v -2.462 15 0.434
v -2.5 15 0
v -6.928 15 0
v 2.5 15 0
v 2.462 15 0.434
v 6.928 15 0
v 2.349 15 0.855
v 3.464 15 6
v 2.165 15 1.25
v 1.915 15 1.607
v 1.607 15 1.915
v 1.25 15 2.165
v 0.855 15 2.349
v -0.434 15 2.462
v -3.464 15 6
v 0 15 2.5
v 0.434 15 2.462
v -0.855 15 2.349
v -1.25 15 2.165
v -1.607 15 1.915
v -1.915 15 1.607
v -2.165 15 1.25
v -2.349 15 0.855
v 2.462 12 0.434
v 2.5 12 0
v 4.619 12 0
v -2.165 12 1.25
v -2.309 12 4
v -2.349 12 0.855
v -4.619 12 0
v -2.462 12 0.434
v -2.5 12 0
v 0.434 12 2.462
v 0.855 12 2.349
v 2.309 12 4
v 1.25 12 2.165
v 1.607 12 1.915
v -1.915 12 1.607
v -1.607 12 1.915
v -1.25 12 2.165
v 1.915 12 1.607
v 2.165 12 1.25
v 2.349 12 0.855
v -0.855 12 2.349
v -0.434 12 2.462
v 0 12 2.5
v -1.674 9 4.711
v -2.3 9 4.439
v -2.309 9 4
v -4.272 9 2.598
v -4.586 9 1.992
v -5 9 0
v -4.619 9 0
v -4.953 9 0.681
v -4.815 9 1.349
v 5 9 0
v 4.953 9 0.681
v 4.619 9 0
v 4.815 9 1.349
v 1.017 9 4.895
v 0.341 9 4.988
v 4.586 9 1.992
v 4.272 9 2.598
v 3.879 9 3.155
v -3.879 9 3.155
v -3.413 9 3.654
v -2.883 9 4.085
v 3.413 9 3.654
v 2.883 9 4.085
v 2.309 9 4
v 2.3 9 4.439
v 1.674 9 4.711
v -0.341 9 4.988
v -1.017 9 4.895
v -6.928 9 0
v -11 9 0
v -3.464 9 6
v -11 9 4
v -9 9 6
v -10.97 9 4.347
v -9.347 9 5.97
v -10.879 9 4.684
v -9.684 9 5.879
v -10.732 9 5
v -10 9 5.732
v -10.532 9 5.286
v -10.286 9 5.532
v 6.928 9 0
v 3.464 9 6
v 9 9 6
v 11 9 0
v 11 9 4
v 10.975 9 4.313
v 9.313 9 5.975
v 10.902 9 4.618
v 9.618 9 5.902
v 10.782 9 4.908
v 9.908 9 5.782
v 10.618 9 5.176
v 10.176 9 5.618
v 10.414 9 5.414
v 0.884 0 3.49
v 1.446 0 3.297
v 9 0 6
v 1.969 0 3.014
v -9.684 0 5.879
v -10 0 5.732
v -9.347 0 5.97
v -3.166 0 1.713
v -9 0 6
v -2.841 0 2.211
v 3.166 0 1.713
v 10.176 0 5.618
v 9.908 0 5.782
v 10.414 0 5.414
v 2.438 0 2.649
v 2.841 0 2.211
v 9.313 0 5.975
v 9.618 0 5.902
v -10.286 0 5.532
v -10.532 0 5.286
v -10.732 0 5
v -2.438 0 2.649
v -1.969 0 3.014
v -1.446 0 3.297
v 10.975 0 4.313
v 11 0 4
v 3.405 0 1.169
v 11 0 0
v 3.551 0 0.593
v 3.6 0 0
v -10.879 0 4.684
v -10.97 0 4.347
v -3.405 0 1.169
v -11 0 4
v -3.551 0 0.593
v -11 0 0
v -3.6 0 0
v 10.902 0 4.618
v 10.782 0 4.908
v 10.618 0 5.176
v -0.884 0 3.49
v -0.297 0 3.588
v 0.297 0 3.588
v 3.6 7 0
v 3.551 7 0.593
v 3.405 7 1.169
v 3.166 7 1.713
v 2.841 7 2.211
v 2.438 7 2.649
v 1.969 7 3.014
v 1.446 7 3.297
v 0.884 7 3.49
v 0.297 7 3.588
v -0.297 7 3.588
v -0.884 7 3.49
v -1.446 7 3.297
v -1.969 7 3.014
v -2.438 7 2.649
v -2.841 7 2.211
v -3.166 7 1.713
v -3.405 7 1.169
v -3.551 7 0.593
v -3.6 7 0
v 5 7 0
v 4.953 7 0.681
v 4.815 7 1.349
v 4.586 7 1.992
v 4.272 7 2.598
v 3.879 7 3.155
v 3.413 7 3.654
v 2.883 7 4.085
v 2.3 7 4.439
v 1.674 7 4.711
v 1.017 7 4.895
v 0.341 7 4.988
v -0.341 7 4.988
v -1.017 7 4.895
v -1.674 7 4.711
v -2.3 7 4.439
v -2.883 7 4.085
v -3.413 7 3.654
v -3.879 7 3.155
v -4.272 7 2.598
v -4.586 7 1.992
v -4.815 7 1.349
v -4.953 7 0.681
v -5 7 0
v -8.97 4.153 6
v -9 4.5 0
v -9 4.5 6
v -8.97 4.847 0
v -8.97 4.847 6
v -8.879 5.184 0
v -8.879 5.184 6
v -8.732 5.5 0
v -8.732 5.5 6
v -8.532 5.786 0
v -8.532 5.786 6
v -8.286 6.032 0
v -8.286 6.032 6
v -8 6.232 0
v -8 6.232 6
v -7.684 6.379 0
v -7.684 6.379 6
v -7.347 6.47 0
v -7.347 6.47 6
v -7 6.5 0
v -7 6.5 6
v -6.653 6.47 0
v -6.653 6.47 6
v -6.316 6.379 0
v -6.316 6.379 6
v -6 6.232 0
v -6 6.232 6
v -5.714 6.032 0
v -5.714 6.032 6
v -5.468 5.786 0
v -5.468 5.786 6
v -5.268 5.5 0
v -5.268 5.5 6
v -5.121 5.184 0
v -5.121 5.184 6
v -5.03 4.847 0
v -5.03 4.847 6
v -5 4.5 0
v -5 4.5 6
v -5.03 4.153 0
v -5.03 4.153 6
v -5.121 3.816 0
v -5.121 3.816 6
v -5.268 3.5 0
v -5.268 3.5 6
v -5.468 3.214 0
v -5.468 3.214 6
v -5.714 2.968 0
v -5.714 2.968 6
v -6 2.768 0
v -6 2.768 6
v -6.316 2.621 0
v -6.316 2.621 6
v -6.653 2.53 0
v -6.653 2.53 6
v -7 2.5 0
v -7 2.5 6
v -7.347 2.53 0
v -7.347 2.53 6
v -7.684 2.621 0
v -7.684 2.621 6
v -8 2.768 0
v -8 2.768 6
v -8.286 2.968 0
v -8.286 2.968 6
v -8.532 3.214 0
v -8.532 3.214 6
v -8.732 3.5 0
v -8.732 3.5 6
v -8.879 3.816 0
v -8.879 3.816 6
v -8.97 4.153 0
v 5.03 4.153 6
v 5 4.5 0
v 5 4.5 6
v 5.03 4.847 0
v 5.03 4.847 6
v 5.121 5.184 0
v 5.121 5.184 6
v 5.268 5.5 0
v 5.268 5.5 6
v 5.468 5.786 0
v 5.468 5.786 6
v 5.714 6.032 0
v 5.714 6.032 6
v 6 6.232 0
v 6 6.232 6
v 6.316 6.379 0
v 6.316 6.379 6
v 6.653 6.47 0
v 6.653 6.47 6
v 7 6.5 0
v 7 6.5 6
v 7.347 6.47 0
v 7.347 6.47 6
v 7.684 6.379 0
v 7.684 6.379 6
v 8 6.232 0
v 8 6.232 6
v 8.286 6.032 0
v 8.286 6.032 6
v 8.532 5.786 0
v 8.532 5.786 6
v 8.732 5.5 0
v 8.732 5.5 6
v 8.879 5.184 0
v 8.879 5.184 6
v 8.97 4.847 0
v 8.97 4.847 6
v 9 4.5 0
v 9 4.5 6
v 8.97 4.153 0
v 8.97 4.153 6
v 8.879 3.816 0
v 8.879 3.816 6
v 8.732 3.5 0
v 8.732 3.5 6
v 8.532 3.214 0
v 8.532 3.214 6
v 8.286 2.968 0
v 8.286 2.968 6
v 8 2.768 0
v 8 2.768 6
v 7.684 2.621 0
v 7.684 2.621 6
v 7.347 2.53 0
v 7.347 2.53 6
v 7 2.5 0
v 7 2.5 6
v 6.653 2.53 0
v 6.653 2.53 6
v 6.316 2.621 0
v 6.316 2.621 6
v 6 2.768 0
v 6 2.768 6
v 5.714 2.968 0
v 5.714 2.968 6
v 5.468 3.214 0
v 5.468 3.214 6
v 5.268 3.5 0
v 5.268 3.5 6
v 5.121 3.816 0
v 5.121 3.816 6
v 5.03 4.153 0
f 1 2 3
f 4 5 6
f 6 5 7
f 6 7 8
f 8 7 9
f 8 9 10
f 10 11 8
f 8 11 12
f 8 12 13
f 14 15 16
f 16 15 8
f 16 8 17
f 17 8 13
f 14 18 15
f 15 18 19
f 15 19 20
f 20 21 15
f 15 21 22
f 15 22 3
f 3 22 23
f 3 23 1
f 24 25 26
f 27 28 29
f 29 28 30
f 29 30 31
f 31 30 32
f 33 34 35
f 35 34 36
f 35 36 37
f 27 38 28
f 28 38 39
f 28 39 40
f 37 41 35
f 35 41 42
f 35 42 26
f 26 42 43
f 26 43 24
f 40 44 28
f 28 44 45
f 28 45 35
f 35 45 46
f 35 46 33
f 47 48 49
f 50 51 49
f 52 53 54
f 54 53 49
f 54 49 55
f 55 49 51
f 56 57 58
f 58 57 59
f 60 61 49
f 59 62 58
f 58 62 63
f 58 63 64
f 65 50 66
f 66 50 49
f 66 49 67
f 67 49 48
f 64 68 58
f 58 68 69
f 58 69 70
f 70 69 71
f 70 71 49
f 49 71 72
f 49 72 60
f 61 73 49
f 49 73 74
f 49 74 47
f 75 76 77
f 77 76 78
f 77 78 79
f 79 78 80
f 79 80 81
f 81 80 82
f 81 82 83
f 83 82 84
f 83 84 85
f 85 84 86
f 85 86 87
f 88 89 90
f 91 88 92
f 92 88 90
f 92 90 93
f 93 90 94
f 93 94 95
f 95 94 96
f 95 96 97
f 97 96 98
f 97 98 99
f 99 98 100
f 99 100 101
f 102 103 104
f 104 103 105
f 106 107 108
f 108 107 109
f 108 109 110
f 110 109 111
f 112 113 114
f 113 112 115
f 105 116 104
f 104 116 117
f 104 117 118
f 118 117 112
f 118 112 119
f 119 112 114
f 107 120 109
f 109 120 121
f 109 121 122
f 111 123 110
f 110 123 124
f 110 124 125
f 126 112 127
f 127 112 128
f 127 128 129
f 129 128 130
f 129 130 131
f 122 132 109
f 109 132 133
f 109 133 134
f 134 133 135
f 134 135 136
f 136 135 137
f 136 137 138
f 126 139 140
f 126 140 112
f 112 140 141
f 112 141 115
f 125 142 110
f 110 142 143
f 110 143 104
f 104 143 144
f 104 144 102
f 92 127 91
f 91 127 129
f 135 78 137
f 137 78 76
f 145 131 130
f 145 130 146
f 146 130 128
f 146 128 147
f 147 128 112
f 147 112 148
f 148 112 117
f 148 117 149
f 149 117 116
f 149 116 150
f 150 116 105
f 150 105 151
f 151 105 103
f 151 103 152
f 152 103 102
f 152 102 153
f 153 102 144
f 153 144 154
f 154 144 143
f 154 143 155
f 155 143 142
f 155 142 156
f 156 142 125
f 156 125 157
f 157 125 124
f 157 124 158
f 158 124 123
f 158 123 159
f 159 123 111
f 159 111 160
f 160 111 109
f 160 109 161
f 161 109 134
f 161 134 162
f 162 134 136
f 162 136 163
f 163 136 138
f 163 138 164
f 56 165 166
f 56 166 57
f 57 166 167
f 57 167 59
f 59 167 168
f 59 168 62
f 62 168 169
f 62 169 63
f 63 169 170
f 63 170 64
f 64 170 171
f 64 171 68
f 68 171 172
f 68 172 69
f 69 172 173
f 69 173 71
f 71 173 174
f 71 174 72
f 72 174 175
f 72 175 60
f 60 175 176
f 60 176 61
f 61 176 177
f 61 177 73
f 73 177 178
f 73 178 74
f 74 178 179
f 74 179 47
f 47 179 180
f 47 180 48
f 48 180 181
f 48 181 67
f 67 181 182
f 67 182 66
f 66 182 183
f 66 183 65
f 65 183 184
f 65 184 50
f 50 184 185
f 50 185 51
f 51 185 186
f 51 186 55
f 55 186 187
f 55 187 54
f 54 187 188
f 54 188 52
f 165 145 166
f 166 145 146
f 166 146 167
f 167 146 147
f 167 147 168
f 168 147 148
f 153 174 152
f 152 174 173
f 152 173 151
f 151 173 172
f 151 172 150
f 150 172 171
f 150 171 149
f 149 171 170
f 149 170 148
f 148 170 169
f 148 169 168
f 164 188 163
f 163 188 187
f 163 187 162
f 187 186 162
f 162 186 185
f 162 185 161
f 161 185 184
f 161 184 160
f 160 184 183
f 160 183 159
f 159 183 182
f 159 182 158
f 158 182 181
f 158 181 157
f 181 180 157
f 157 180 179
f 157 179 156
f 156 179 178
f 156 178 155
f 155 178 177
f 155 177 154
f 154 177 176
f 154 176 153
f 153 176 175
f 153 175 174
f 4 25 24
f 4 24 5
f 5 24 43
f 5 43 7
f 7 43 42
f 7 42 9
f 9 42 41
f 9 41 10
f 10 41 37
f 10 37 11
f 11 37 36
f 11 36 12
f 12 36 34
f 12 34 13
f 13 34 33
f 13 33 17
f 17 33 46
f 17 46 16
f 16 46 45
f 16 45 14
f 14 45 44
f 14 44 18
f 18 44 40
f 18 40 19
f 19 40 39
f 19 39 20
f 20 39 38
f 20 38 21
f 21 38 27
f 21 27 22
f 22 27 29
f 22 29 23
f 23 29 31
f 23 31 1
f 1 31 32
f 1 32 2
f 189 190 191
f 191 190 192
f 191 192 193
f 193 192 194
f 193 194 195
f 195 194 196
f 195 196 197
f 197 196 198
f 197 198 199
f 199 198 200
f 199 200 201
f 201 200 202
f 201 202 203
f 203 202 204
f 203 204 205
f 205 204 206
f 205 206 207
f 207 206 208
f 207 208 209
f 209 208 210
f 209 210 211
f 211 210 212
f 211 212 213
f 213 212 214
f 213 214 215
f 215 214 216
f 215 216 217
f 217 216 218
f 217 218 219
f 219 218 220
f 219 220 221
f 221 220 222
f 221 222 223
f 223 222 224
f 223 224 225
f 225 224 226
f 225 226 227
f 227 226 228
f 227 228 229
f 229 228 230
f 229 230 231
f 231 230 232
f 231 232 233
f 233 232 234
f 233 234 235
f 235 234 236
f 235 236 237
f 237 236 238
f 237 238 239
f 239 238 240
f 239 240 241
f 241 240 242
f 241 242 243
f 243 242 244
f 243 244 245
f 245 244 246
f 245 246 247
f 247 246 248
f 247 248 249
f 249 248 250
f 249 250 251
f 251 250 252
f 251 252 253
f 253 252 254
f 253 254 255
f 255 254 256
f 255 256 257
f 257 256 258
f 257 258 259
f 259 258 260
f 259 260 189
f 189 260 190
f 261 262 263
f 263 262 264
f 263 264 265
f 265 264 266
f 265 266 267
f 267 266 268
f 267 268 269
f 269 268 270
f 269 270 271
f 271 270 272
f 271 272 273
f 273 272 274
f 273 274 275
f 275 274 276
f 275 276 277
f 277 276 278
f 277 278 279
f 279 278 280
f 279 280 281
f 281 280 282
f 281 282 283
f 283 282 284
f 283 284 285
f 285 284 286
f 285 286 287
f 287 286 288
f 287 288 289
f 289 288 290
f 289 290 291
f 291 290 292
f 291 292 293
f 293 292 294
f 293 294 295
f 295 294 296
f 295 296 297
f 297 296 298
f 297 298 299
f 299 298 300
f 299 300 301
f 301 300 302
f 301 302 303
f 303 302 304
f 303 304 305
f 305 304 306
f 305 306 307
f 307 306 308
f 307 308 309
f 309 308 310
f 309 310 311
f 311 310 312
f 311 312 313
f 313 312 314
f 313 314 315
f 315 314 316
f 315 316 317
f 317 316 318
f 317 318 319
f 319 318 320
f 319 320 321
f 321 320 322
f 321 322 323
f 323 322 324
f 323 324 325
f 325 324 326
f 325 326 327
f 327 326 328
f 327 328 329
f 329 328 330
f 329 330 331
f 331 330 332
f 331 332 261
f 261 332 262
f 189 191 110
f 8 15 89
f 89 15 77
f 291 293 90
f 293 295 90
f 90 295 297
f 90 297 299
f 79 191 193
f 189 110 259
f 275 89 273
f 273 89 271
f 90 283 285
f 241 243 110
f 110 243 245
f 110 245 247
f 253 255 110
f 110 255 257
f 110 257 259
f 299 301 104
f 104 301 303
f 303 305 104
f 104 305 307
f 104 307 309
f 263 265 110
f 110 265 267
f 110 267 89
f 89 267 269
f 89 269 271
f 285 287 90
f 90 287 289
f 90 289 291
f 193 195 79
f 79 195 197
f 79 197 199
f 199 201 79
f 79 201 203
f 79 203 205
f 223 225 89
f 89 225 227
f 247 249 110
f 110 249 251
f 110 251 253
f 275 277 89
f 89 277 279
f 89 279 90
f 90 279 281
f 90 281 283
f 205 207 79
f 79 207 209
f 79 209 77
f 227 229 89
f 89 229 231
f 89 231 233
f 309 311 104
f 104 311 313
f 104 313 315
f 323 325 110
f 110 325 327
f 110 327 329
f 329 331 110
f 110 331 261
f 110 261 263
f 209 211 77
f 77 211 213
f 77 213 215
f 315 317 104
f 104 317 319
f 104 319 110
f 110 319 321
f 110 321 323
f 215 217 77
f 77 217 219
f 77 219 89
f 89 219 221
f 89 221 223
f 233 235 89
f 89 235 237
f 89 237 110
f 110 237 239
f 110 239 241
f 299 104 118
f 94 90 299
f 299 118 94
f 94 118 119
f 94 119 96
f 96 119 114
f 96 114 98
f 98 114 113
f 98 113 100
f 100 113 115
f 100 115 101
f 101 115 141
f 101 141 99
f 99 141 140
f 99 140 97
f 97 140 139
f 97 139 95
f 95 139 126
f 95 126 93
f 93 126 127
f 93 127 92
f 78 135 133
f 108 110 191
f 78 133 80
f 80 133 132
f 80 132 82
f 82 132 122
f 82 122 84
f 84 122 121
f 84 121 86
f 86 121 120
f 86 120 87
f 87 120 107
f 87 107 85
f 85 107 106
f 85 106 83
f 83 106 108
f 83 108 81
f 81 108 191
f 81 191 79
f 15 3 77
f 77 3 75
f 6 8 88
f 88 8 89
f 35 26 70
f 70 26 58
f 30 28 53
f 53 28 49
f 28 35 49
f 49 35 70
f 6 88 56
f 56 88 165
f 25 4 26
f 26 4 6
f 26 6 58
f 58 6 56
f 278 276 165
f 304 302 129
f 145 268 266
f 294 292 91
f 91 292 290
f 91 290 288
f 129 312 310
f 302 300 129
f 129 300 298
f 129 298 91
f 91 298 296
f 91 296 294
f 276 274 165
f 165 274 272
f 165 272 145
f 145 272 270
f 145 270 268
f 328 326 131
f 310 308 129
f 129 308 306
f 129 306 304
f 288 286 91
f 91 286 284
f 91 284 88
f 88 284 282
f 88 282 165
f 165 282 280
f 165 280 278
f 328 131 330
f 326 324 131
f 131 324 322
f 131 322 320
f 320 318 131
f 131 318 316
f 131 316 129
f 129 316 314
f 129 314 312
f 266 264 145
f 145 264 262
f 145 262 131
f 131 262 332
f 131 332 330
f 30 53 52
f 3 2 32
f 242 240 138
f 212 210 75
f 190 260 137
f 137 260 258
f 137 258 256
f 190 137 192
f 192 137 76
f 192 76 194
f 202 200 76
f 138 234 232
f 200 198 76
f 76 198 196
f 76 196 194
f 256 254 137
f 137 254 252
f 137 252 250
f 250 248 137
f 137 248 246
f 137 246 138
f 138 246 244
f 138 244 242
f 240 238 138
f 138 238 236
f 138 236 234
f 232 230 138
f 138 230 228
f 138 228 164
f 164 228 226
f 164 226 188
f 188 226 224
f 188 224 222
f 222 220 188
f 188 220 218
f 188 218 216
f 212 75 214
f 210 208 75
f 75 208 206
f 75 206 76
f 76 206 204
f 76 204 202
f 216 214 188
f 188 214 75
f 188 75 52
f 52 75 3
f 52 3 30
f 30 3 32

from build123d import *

# Parameters (mm, degrees)
SKETCH_1_W           = 22
SKETCH_1_H           = 12
EXTRUDE_1_DEPTH      = 9
FILLET_1_R           = 2
SKETCH_2_R           = 3.6
CUT_EXTRUDE_1_DEPTH  = 8
SKETCH_3_R           = 5
CUT_EXTRUDE_2_DEPTH  = 1
EXTRUDE_2_DEPTH      = 6
CUT_EXTRUDE_5_DEPTH  = 3
SKETCH_8_R           = 2.5
CUT_EXTRUDE_6_DEPTH  = 6
SKETCH_11_R          = 2
CUT_EXTRUDE_9_DEPTH  = 13
SKETCH_12_W          = 27.17111841
SKETCH_12_H          = 33.234136994
CUT_EXTRUDE_10_DEPTH = 10


with BuildPart() as part:
    # Эскиз1 → Бобышка-Вытянуть1 (new body)
    with BuildSketch(Plane(origin=(0, 0, 0), x_dir=(1, 0, 0), z_dir=(0, 1, 0))):
        Rectangle(SKETCH_1_W, SKETCH_1_H)
    extrude(amount=EXTRUDE_1_DEPTH)

    # Скругление1
    fillet_1_edges = [part.edges().sort_by_distance(p)[0] for p in [
        (11, 4.5, 6),
        (-11, 4.5, 6),
        (-11, 4.5, -6),
        (11, 4.5, -6),
    ]]
    fillet(fillet_1_edges, radius=FILLET_1_R)

    # Эскиз2 → Вырез-Вытянуть1 (cut)
    with BuildSketch(Plane(origin=(0, 0, 0), x_dir=(1, 0, 0), z_dir=(0, 1, 0))):
        Circle(SKETCH_2_R)
    extrude(amount=CUT_EXTRUDE_1_DEPTH, mode=Mode.SUBTRACT)

    # Эскиз3 → Вырез-Вытянуть2 (cut, symmetric)
    with BuildSketch(Plane.XZ.offset(-8)):
        Circle(SKETCH_3_R)
    extrude(amount=CUT_EXTRUDE_2_DEPTH, both=True, mode=Mode.SUBTRACT)

    # Эскиз6 → Бобышка-Вытянуть2 (add)
    with BuildSketch(Plane(origin=(0, 9, 0), x_dir=(1, 0, 0), z_dir=(0, 1, 0))):
        Polygon((6.92820323, 0), (3.464101615, 6), (-3.464101615, 6), (-6.92820323, 0), (-3.464101615, -6), (3.464101615, -6), align=None)
    extrude(amount=EXTRUDE_2_DEPTH)

    # Эскиз7 → Вырез-Вытянуть5 (cut)
    with BuildSketch(Plane(origin=(0, 9, 0), x_dir=(1, 0, 0), z_dir=(0, 1, 0))):
        Polygon((4.618802154, 0), (2.309401077, 4), (-2.309401077, 4), (-4.618802154, 0), (-2.309401077, -4), (2.309401077, -4), align=None)
    extrude(amount=CUT_EXTRUDE_5_DEPTH, mode=Mode.SUBTRACT)

    # Эскиз8 → Вырез-Вытянуть6 (cut)
    with BuildSketch(Plane(origin=(0, 9, 0), x_dir=(1, 0, 0), z_dir=(0, 1, 0))):
        Circle(SKETCH_8_R)
    extrude(amount=CUT_EXTRUDE_6_DEPTH, mode=Mode.SUBTRACT)

    # Эскиз11 → Вырез-Вытянуть9 (cut, through all)
    with BuildSketch(Plane(origin=(0, 0, -6), x_dir=(-1, 0, 0), z_dir=(0, 0, -1))):
        with Locations((7, 4.5)):
            Circle(SKETCH_11_R)
    cut_extrude_9 = extrude(amount=-CUT_EXTRUDE_9_DEPTH, mode=Mode.SUBTRACT)

    # Зеркальное отражение6: Вырез-Вытянуть9 across plane
    add(cut_extrude_9.mirror(Plane(origin=(0, 0, 0), x_dir=(0, 0, 1), z_dir=(1, 0, 0))), mode=Mode.SUBTRACT)

    # Эскиз12 → Вырез-Вытянуть10 (cut)
    with BuildSketch(Plane.XY):
        Rectangle(SKETCH_12_W, SKETCH_12_H)
    extrude(amount=-CUT_EXTRUDE_10_DEPTH, mode=Mode.SUBTRACT)


solid = part.part
